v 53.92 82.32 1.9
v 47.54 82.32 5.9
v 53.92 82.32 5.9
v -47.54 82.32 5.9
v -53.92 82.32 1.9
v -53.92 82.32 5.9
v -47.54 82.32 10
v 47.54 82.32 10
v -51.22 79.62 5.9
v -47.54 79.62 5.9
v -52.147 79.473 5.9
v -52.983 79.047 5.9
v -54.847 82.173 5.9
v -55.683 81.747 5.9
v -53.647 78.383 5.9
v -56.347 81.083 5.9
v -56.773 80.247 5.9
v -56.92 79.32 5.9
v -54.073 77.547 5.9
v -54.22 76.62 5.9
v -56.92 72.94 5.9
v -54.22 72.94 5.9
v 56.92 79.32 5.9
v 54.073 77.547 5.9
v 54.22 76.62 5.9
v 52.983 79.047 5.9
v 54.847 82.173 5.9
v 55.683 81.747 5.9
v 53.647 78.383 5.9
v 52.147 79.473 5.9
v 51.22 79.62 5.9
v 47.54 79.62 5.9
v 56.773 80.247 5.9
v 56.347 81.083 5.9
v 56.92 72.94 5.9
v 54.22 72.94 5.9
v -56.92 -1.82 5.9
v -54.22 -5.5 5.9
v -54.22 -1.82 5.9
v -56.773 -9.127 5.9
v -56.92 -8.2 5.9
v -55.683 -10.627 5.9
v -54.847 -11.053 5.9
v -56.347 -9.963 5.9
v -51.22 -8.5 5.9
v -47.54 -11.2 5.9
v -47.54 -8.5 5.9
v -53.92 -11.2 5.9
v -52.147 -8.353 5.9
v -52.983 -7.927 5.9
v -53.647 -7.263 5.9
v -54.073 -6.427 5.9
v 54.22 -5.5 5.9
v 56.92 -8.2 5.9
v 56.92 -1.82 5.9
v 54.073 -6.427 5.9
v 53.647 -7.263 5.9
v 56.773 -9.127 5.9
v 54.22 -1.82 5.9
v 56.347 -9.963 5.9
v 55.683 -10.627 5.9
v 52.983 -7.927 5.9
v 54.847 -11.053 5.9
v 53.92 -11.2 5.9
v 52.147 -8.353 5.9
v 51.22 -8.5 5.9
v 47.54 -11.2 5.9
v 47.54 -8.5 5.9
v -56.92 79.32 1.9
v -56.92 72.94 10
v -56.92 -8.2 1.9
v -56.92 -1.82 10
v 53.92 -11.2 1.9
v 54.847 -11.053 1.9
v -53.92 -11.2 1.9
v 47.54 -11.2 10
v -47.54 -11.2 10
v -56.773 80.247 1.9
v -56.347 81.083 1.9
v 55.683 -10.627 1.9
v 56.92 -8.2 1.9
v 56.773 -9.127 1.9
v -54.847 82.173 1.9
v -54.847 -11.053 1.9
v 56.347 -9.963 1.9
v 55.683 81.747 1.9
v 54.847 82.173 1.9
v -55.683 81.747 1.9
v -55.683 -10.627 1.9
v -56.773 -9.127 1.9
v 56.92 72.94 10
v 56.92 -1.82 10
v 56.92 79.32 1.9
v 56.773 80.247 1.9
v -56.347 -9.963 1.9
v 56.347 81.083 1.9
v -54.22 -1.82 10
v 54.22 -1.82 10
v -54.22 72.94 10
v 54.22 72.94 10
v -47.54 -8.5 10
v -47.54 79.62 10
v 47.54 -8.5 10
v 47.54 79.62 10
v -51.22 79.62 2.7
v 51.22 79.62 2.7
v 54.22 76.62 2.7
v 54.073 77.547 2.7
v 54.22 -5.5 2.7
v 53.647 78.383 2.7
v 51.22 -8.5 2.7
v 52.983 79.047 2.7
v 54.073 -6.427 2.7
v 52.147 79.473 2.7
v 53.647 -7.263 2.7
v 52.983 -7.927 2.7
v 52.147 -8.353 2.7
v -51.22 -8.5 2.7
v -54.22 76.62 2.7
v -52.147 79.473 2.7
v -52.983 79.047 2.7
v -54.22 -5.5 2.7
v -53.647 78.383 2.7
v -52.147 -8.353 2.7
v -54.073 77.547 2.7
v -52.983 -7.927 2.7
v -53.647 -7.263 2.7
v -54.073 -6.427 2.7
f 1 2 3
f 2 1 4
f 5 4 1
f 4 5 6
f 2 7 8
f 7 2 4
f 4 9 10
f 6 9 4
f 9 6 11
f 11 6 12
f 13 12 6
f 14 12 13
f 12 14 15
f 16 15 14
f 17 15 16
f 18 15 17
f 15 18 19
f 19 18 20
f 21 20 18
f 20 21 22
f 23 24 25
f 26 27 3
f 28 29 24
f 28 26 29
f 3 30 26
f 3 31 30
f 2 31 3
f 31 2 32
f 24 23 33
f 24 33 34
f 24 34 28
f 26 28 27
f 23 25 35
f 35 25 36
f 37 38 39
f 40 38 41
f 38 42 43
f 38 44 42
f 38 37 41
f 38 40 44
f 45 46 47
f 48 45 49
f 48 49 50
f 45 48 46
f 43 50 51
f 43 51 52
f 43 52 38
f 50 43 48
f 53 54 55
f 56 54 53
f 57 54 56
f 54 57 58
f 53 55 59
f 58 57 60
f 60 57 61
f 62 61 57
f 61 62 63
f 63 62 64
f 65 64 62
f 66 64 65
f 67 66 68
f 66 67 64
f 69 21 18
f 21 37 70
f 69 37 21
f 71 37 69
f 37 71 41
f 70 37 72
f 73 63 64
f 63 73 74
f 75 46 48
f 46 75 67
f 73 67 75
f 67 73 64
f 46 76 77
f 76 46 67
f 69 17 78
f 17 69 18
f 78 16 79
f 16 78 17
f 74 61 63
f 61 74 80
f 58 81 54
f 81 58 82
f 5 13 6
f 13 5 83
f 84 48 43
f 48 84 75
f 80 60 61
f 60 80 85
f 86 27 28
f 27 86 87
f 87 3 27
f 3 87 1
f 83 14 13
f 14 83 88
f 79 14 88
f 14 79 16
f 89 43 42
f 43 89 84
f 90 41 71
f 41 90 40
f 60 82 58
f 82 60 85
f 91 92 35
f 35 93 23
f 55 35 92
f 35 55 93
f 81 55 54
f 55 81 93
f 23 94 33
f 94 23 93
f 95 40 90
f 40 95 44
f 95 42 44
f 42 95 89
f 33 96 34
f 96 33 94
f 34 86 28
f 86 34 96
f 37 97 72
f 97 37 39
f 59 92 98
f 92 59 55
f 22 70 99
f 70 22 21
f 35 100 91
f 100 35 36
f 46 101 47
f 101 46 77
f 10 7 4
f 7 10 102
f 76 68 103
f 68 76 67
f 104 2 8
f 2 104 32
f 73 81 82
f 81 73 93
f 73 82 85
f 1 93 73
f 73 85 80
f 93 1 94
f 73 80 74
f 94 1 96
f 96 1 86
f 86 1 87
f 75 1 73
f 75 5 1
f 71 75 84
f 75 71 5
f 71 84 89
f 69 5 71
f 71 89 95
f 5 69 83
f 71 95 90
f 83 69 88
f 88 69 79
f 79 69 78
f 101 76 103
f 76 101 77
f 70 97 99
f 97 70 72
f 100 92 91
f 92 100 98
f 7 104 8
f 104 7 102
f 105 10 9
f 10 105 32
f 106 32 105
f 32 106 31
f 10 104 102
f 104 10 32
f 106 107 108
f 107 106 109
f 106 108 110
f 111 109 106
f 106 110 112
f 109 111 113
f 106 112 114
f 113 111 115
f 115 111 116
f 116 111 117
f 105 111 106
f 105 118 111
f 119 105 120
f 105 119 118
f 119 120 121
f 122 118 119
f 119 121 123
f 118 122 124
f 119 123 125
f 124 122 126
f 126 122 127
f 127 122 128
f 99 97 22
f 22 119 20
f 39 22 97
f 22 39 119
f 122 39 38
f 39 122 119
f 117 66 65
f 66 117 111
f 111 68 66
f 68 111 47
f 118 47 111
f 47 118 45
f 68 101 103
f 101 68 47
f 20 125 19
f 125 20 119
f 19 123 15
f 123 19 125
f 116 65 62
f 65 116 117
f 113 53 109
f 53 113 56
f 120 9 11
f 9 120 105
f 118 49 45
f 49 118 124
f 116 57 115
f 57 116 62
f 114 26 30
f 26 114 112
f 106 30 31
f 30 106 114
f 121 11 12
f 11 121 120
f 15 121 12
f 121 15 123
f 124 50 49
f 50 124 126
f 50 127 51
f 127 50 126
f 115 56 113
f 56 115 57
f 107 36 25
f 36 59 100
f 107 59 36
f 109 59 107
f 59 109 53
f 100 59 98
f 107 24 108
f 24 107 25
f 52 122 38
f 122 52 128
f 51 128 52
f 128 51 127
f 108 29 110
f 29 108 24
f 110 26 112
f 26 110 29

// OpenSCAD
// file: ../src/bocnice.scad
use <text/Write.scad>
use <MLAB_logo.scad>
use <sloupek.scad>
use <plbase.scad>
include <manufactury_conf.scad>
include <../configuration.scad>

bocnice(pocet_der1,pocet_der2,radidus_hrany,vzdalenost_der,vzdalenost_od_okraje1,vzdalenost_od_okraje2,prumer_sroubu,vyska_bocnice,prekryti_der,tloustka_bocnice);

//Bočnice
//------------------------------------------------------------


module bocnice(pocet_der1,pocet_der2,radidus_hrany,vzdalenost_der,vzdalenost_od_okraje1,vzdalenost_od_okraje2,prumer_sroubu,vyska_bocnice,prekryti_der,tloustka_bocnice){

difference () {
    union()
        {
        translate([-((pocet_der2)*vzdalenost_der+2*vzdalenost_od_okraje2)/2,-vzdalenost_od_okraje1,vyska_bocnice/2])
        rotate(a=[180,0,90])        
            translate([radidus_hrany,radidus_hrany,0])
                translate([-tloustka_bocnice,-tloustka_bocnice,0])
        
    //obvod
      difference () {

        minkowski()
        {
            cube([(pocet_der1)*vzdalenost_der+2*vzdalenost_od_okraje1-2*radidus_hrany+2*tloustka_bocnice,(pocet_der2)*vzdalenost_der+2*vzdalenost_od_okraje2-2*radidus_hrany+2*tloustka_bocnice,vyska_bocnice+tloustka_plbase]);          // base plastics brick
            cylinder(r=radidus_hrany,h=0.01);
        }   

        translate([tloustka_bocnice-radidus_hrany,tloustka_bocnice-radidus_hrany,-0.1])    
            
                cube([(pocet_der1)*vzdalenost_der+2*vzdalenost_od_okraje1,(pocet_der2)*vzdalenost_der+2*vzdalenost_od_okraje2,vyska_bocnice+tloustka_plbase+0.2]);        
 
  
        
    }     
      
   
    
//SLOUPKY
//------------------------------------------------------------
//sloupek 1

    translate([(-(pocet_der2)*vzdalenost_der)/2-vzdalenost_od_okraje2+prumer_matice/2,-vzdalenost_od_okraje1+prumer_matice/2,vyska_bocnice/2-(vyska_matice+2*tloustka_bocnice+0.1)-tloustka_plbase])
        sloupek ();

//sloupek 2

    translate([((pocet_der2)*vzdalenost_der)/2+vzdalenost_od_okraje2-prumer_matice/2,-vzdalenost_od_okraje1+prumer_matice/2,vyska_bocnice/2-(vyska_matice+2*tloustka_bocnice+0.1)-tloustka_plbase])
        rotate(a=[0,0,90])
            sloupek ();

//sloupek 3

    translate([((pocet_der2)*vzdalenost_der)/2+vzdalenost_od_okraje2-prumer_matice/2, (pocet_der1)*vzdalenost_der+vzdalenost_od_okraje1-prumer_matice/2,vyska_bocnice/2-(vyska_matice+2*tloustka_bocnice+0.1)-tloustka_plbase])
        rotate(a=[0,0,180])
            sloupek ();

//sloupek 4

    translate([-((pocet_der2)*vzdalenost_der)/2-vzdalenost_od_okraje2+prumer_matice/2, (pocet_der1)*vzdalenost_der+vzdalenost_od_okraje1-prumer_matice/2,vyska_bocnice/2-(vyska_matice+2*tloustka_bocnice+0.1)-tloustka_plbase])
        rotate(a=[0,0,270])
            sloupek ();
/* 
//uchyt 1
 translate([(-(pocet_der2)*vzdalenost_der)/2-vzdalenost_od_okraje2-Uchyt_radius/2-Uchyt_x+0.5,-vzdalenost_od_okraje1+vzdalenost_der/2,-vyska_bocnice/2-tloustka_plbase])
uchyt();
 
 //uchyt 2
 translate([((pocet_der2)*vzdalenost_der)/2+vzdalenost_od_okraje2+tloustka_bocnice+Uchyt_radius-0.5,-vzdalenost_od_okraje1+vzdalenost_der/2,-vyska_bocnice/2-tloustka_plbase])
uchyt();

//uchyt 3
 translate([(-(pocet_der2)*vzdalenost_der)/2-vzdalenost_od_okraje2-Uchyt_radius/2-Uchyt_x+0.5,(pocet_der1)*vzdalenost_der+vzdalenost_od_okraje1-Uchyt_y+Uchyt_radius-vzdalenost_der/2,-vyska_bocnice/2-tloustka_plbase])
uchyt();
 
 //uchyt 4
 translate([((pocet_der2)*vzdalenost_der)/2+vzdalenost_od_okraje2+tloustka_bocnice+Uchyt_radius-0.5,(pocet_der1)*vzdalenost_der+vzdalenost_od_okraje1-Uchyt_y+Uchyt_radius-vzdalenost_der/2,-vyska_bocnice/2-tloustka_plbase])
uchyt();
*/ 
 }




//----------------------------------------------------
//LOGO MLAB 
/*  
translate([(5-(pocet_der2)*vzdalenost_der)/2,0,0])
            translate ([0, -vzdalenost_od_okraje-tloustka_bocnice*1/2,0])  // 
                rotate([0, 90, 270])
                    scale(v = [logo_sirka, logo_vyska, 0.3])
                        MLAB_logo_short();
*/



//plbase odecet na kryt
  translate([0,0,vyska_bocnice/2-tloustka_plbase/2+0.05])
    rotate(a=[0,0,0])
    {
    plbase_vrchni_kryt_pro_odecet(pocet_der1,pocet_der2,radidus_hrany,vzdalenost_der,vzdalenost_od_okraje1,vzdalenost_od_okraje2,prumer_sroubu,vyska_bocnice,prekryti_der,tloustka_bocnice,0,tloustka_plbase+0.1);
    }


}
}




//uchyt();

module uchyt(){
    difference () {
minkowski()
    {
	cube([Uchyt_x-2*Uchyt_radius,Uchyt_y-2*Uchyt_radius,Uchyt_vyska_mat+M3_vyska_hlavy]);          // base plastics brick
        cylinder(r=Uchyt_radius,h=0.1);
    }

//otvor na hlavu
translate([(Uchyt_x)/2-Uchyt_radius,(Uchyt_y)/2-Uchyt_radius,Uchyt_vyska_mat+M3_vyska_hlavy/2])  
cylinder(h=M3_vyska_hlavy+0.6, r=M3_prumer_hlavy/2, center=true); 
    
////otvor na sroub
translate([(Uchyt_x)/2-Uchyt_radius,(Uchyt_y)/2-Uchyt_radius,(Uchyt_vyska_mat+M3_vyska_hlavy)/2])  
cylinder(h=Uchyt_vyska_mat+M3_vyska_hlavy+0.6, r=M3_prumer/2, center=true);     
    

 }   
  } 
  
  
  
// file: ../src/sloupek.scad
include <manufactury_conf.scad>
include <../configuration.scad>
use <MLAB_logo.scad>

sloupek ();


//Funkce pro generovani sloupku
module sloupek() {

difference () {
    translate([-(prumer_matice+2*tloustka_bocnice-2*radidus_hrany)/2,-(prumer_matice+2*tloustka_bocnice-2*radidus_hrany)/2,0])
minkowski()
    {
	cube([prumer_matice+2*tloustka_bocnice-2*radidus_hrany,prumer_matice+2*tloustka_bocnice-2*radidus_hrany,vyska_matice+2*tloustka_bocnice]);          // base plastics brick
        cylinder(r=radidus_hrany,h=0.1);
    }
 
   translate([0,0,vyska_matice+2*tloustka_bocnice+0.1-tloustka_bocnice/2+0.2])  
  cylinder((tloustka_bocnice), d=(prumer_sroubu), center=true);    
    
 cylinder((vyska_matice+2*tloustka_bocnice), d=(prumer_sroubu), center=true);   
    
    
    //otvor na matici
     translate([0,tloustka_bocnice/2-posuv_dorazu/2,(vyska_matice+2*tloustka_bocnice)/2])  
              
        cube([prumer_matice, prumer_matice+posuv_dorazu+tloustka_bocnice,vyska_matice], center = true);
    
    }

difference () {
   translate([-(prumer_matice+2*tloustka_bocnice)/2,-(prumer_matice+2*tloustka_bocnice)/2,-vyska_podpery])
rotate([0, 0, 45])
    
cylinder(vyska_podpery,0,sqrt(2*((prumer_matice+2*tloustka_bocnice)*(prumer_matice+2*tloustka_bocnice))),$fn=4);
  
   
  
    
   difference () {



	translate([-((sqrt(2*((prumer_matice+2*tloustka_bocnice)*(prumer_matice+2*tloustka_bocnice))*2))),-((sqrt(2*((prumer_matice+2*tloustka_bocnice)*(prumer_matice+2*tloustka_bocnice))*2))),-vyska_podpery])
 cube([2*(sqrt(2*((prumer_matice+2*tloustka_bocnice)*(prumer_matice+2*tloustka_bocnice))*2)),2*(sqrt(2*((prumer_matice+2*tloustka_bocnice)*(prumer_matice+2*tloustka_bocnice))*2)),vyska_podpery+0.1]);
  
  translate([-(prumer_matice+2*tloustka_bocnice-2*radidus_hrany)/2,-(prumer_matice+2*tloustka_bocnice-2*radidus_hrany)/2,-vyska_podpery+0.05])
       
minkowski()
    {
	cube([prumer_matice+2*tloustka_bocnice-2*radidus_hrany,prumer_matice+2*tloustka_bocnice-2*radidus_hrany,vyska_podpery+0.01]);          // base plastics brick
        cylinder(r=radidus_hrany,h=0.1);
    }
 }   
   
   
   
    
   } 
   
   
 

 }   
// file: ../configuration.scad
//Název boxu (zařízení)
box_jmeno="TEFO01C";

vzdalenost_der = 10.16; //rozteč děr mezi sebou
radidus_hrany = 3; //radius zaobleni sloupku
vzdalenost_od_okraje = 5.2; //vzdalenost stredu upevnovaci diry od kraje desky
pocet_der1 = 8; //pocet děr v ose y
pocet_der2 = 10; //pocet der v ose x



//OBECNE PARAMETRY KRABICKY
//------------------------------------------------------------
//BOCNICE
vyska_bocnice=40;
tloustka_bocnice=3;


//PLBASE PARAMETRY
//------------------------------------------------------------
tloustka_plbase = 2; //tloustka plbase - dna
prekryti_der=0.2; //sila materiálu, který překrývá díry, aby nebyli vidět

plbase_tolerance_horni=0.5; //pro zvětšení tolerance aby tam šlo dát  horní čelíčko


//Rozmery loga MLAB
//------------------------------------------------------------
logo_vyska=0.15;
logo_sirka=0.15;
// file: ../src/manufactury_conf.scad
$fn=20; // model faces resolution.

 //Sroub - podpěra pro tisk sloupku
        vyska_podpery=12;
        vyska_mat_pod_matici=3;

//Sroub - parametry
vyska_hlavy = 3.5;
prumer_hlavy=6;
prumer_sroubu=3.3;

//Matice - parametry
prumer_matice=6; //hrany k hraně
vyska_matice=3;  //vyska matice
posuv_dorazu=1;  //pro moznost posuvu dorazu pro vsunutí matice
matice_sila_materialu=2; //sila materialu pod maticí na ose z


//Lišta parametry
//---------------------------------------------------
//rozměry výrezu v ose y
vzdalenost_od_diry = 5; //vzdalenost od stredu upevnovaci diry na druhou stranu


//Spodní Kryt
vyska_prekryti_spodni=3;
vyska_prekryti_vrchni=4;
prekryti_tolerance=0.6;
tolerance_na_nasunuti=0.3;
sila_spodniho_krytu=1;

//Pro vrchni PLBASE
hrana_bocnice=1.2; //udává jaká síla bocnice zůstane v části zapustěni vrchního čelička
// file: ../src/spodni_kryt.scad
use <text/Write.scad>
use <MLAB_logo.scad>
use <sloupek.scad>
use <plbase.scad>
use <bocnice.scad>
include <manufactury_conf.scad>
include <../configuration.scad>

spodni_kryt(pocet_der1,pocet_der2,radidus_hrany,vzdalenost_der,vzdalenost_od_okraje,prumer_sroubu,vyska_bocnice,prekryti_der,tloustka_bocnice);

//Spodni kryt - aby nebyli vidět matice ze spodu boxu
//------------------------------------------------------------


module spodni_kryt(pocet_der1,pocet_der2,radidus_hrany,vzdalenost_der,vzdalenost_od_okraje,prumer_sroubu,vyska_bocnice,prekryti_der,tloustka_bocnice){
  
 
translate([-((pocet_der2)*vzdalenost_der+2*vzdalenost_od_okraje)/2,-vzdalenost_od_okraje,(vyska_prekryti_spodni+vyska_prekryti_vrchni+tloustka_plbase)])
    rotate(a=[180,0,90])        
        translate([radidus_hrany,radidus_hrany,0])
            translate([-2*tloustka_bocnice,-2*tloustka_bocnice,0])

difference () {

    minkowski()
        {
        cube([(pocet_der1)*vzdalenost_der+2*vzdalenost_od_okraje-2*radidus_hrany+4*tloustka_bocnice,(pocet_der2)*vzdalenost_der+2*vzdalenost_od_okraje-2*radidus_hrany+4*tloustka_bocnice,vyska_prekryti_spodni+vyska_prekryti_vrchni+sila_spodniho_krytu]);          // base plastics brick
        cylinder(r=radidus_hrany,h=0.1);
        }
    translate([tloustka_bocnice-tolerance_na_nasunuti,tloustka_bocnice-tolerance_na_nasunuti,-sila_spodniho_krytu])    
        minkowski()
        {
    	cube([(pocet_der1)*vzdalenost_der+2*vzdalenost_od_okraje-2*radidus_hrany+2*tloustka_bocnice+2*tolerance_na_nasunuti,(pocet_der2)*vzdalenost_der+2*vzdalenost_od_okraje-2*radidus_hrany+2*tloustka_bocnice+2*tolerance_na_nasunuti,vyska_prekryti_spodni+
vyska_prekryti_vrchni+sila_spodniho_krytu+0.2]);          // base plastics brick
        cylinder(r=radidus_hrany,h=0.1);
        }
    
 
    translate([0,0,-vyska_prekryti_spodni-sila_spodniho_krytu])  
        difference () {

            minkowski()
            {
                cube([(pocet_der1)*vzdalenost_der+2*vzdalenost_od_okraje-2*radidus_hrany+4*tloustka_bocnice,(pocet_der2)*vzdalenost_der+2*vzdalenost_od_okraje-2*radidus_hrany+4*tloustka_bocnice,vyska_prekryti_spodni+
vyska_prekryti_vrchni+sila_spodniho_krytu]);                // base plastics brick
                cylinder(r=radidus_hrany,h=0.1);
            }

            translate([tloustka_bocnice,tloustka_bocnice,-0.1])    
                minkowski()
                {
                cube([(pocet_der1)*vzdalenost_der+2*vzdalenost_od_okraje-2*radidus_hrany+2*tloustka_bocnice,(pocet_der2)*vzdalenost_der+2*vzdalenost_od_okraje-2*radidus_hrany+2*tloustka_bocnice,vyska_prekryti_spodni+
vyska_prekryti_vrchni+sila_spodniho_krytu+0.2]);          // base plastics brick
                cylinder(r=radidus_hrany,h=0.1);
                }
    
            translate([-radidus_hrany+vzdalenost_der/2+tloustka_bocnice+1+prekryti_tolerance/2,-radidus_hrany-0.25,-0.1])    

                cube([(pocet_der1)*vzdalenost_der+2*vzdalenost_od_okraje+4*tloustka_bocnice-vzdalenost_der-2*tloustka_bocnice-2-prekryti_tolerance,(pocet_der2)*vzdalenost_der+2*vzdalenost_od_okraje+4*tloustka_bocnice+0.5,vyska_bocnice+sila_spodniho_krytu+0.2]);

            translate([-radidus_hrany-0.25,-radidus_hrany+vzdalenost_der/2+tloustka_bocnice+1+prekryti_tolerance/2,-0.1])    

                cube([(pocet_der1)*vzdalenost_der+2*vzdalenost_od_okraje+4*tloustka_bocnice+0.5,(pocet_der2)*vzdalenost_der+2*vzdalenost_od_okraje+4*tloustka_bocnice-vzdalenost_der-2*tloustka_bocnice-2-prekryti_tolerance,vyska_bocnice+sila_spodniho_krytu+0.2]);      

 } 

    
 } 
 
}

  
// main file
use <../src/spodni_kryt.scad>



include <../src/manufactury_conf.scad>
include <../configuration.scad>


 translate([0,0,tloustka_plbase/2])
rotate(a=[0,0,0])
    {
        
    
spodni_kryt(pocet_der1-1,pocet_der2-1,radidus_hrany,vzdalenost_der,vzdalenost_od_okraje,prumer_sroubu,vyska_bocnice,prekryti_der,tloustka_bocnice);
        
     }
